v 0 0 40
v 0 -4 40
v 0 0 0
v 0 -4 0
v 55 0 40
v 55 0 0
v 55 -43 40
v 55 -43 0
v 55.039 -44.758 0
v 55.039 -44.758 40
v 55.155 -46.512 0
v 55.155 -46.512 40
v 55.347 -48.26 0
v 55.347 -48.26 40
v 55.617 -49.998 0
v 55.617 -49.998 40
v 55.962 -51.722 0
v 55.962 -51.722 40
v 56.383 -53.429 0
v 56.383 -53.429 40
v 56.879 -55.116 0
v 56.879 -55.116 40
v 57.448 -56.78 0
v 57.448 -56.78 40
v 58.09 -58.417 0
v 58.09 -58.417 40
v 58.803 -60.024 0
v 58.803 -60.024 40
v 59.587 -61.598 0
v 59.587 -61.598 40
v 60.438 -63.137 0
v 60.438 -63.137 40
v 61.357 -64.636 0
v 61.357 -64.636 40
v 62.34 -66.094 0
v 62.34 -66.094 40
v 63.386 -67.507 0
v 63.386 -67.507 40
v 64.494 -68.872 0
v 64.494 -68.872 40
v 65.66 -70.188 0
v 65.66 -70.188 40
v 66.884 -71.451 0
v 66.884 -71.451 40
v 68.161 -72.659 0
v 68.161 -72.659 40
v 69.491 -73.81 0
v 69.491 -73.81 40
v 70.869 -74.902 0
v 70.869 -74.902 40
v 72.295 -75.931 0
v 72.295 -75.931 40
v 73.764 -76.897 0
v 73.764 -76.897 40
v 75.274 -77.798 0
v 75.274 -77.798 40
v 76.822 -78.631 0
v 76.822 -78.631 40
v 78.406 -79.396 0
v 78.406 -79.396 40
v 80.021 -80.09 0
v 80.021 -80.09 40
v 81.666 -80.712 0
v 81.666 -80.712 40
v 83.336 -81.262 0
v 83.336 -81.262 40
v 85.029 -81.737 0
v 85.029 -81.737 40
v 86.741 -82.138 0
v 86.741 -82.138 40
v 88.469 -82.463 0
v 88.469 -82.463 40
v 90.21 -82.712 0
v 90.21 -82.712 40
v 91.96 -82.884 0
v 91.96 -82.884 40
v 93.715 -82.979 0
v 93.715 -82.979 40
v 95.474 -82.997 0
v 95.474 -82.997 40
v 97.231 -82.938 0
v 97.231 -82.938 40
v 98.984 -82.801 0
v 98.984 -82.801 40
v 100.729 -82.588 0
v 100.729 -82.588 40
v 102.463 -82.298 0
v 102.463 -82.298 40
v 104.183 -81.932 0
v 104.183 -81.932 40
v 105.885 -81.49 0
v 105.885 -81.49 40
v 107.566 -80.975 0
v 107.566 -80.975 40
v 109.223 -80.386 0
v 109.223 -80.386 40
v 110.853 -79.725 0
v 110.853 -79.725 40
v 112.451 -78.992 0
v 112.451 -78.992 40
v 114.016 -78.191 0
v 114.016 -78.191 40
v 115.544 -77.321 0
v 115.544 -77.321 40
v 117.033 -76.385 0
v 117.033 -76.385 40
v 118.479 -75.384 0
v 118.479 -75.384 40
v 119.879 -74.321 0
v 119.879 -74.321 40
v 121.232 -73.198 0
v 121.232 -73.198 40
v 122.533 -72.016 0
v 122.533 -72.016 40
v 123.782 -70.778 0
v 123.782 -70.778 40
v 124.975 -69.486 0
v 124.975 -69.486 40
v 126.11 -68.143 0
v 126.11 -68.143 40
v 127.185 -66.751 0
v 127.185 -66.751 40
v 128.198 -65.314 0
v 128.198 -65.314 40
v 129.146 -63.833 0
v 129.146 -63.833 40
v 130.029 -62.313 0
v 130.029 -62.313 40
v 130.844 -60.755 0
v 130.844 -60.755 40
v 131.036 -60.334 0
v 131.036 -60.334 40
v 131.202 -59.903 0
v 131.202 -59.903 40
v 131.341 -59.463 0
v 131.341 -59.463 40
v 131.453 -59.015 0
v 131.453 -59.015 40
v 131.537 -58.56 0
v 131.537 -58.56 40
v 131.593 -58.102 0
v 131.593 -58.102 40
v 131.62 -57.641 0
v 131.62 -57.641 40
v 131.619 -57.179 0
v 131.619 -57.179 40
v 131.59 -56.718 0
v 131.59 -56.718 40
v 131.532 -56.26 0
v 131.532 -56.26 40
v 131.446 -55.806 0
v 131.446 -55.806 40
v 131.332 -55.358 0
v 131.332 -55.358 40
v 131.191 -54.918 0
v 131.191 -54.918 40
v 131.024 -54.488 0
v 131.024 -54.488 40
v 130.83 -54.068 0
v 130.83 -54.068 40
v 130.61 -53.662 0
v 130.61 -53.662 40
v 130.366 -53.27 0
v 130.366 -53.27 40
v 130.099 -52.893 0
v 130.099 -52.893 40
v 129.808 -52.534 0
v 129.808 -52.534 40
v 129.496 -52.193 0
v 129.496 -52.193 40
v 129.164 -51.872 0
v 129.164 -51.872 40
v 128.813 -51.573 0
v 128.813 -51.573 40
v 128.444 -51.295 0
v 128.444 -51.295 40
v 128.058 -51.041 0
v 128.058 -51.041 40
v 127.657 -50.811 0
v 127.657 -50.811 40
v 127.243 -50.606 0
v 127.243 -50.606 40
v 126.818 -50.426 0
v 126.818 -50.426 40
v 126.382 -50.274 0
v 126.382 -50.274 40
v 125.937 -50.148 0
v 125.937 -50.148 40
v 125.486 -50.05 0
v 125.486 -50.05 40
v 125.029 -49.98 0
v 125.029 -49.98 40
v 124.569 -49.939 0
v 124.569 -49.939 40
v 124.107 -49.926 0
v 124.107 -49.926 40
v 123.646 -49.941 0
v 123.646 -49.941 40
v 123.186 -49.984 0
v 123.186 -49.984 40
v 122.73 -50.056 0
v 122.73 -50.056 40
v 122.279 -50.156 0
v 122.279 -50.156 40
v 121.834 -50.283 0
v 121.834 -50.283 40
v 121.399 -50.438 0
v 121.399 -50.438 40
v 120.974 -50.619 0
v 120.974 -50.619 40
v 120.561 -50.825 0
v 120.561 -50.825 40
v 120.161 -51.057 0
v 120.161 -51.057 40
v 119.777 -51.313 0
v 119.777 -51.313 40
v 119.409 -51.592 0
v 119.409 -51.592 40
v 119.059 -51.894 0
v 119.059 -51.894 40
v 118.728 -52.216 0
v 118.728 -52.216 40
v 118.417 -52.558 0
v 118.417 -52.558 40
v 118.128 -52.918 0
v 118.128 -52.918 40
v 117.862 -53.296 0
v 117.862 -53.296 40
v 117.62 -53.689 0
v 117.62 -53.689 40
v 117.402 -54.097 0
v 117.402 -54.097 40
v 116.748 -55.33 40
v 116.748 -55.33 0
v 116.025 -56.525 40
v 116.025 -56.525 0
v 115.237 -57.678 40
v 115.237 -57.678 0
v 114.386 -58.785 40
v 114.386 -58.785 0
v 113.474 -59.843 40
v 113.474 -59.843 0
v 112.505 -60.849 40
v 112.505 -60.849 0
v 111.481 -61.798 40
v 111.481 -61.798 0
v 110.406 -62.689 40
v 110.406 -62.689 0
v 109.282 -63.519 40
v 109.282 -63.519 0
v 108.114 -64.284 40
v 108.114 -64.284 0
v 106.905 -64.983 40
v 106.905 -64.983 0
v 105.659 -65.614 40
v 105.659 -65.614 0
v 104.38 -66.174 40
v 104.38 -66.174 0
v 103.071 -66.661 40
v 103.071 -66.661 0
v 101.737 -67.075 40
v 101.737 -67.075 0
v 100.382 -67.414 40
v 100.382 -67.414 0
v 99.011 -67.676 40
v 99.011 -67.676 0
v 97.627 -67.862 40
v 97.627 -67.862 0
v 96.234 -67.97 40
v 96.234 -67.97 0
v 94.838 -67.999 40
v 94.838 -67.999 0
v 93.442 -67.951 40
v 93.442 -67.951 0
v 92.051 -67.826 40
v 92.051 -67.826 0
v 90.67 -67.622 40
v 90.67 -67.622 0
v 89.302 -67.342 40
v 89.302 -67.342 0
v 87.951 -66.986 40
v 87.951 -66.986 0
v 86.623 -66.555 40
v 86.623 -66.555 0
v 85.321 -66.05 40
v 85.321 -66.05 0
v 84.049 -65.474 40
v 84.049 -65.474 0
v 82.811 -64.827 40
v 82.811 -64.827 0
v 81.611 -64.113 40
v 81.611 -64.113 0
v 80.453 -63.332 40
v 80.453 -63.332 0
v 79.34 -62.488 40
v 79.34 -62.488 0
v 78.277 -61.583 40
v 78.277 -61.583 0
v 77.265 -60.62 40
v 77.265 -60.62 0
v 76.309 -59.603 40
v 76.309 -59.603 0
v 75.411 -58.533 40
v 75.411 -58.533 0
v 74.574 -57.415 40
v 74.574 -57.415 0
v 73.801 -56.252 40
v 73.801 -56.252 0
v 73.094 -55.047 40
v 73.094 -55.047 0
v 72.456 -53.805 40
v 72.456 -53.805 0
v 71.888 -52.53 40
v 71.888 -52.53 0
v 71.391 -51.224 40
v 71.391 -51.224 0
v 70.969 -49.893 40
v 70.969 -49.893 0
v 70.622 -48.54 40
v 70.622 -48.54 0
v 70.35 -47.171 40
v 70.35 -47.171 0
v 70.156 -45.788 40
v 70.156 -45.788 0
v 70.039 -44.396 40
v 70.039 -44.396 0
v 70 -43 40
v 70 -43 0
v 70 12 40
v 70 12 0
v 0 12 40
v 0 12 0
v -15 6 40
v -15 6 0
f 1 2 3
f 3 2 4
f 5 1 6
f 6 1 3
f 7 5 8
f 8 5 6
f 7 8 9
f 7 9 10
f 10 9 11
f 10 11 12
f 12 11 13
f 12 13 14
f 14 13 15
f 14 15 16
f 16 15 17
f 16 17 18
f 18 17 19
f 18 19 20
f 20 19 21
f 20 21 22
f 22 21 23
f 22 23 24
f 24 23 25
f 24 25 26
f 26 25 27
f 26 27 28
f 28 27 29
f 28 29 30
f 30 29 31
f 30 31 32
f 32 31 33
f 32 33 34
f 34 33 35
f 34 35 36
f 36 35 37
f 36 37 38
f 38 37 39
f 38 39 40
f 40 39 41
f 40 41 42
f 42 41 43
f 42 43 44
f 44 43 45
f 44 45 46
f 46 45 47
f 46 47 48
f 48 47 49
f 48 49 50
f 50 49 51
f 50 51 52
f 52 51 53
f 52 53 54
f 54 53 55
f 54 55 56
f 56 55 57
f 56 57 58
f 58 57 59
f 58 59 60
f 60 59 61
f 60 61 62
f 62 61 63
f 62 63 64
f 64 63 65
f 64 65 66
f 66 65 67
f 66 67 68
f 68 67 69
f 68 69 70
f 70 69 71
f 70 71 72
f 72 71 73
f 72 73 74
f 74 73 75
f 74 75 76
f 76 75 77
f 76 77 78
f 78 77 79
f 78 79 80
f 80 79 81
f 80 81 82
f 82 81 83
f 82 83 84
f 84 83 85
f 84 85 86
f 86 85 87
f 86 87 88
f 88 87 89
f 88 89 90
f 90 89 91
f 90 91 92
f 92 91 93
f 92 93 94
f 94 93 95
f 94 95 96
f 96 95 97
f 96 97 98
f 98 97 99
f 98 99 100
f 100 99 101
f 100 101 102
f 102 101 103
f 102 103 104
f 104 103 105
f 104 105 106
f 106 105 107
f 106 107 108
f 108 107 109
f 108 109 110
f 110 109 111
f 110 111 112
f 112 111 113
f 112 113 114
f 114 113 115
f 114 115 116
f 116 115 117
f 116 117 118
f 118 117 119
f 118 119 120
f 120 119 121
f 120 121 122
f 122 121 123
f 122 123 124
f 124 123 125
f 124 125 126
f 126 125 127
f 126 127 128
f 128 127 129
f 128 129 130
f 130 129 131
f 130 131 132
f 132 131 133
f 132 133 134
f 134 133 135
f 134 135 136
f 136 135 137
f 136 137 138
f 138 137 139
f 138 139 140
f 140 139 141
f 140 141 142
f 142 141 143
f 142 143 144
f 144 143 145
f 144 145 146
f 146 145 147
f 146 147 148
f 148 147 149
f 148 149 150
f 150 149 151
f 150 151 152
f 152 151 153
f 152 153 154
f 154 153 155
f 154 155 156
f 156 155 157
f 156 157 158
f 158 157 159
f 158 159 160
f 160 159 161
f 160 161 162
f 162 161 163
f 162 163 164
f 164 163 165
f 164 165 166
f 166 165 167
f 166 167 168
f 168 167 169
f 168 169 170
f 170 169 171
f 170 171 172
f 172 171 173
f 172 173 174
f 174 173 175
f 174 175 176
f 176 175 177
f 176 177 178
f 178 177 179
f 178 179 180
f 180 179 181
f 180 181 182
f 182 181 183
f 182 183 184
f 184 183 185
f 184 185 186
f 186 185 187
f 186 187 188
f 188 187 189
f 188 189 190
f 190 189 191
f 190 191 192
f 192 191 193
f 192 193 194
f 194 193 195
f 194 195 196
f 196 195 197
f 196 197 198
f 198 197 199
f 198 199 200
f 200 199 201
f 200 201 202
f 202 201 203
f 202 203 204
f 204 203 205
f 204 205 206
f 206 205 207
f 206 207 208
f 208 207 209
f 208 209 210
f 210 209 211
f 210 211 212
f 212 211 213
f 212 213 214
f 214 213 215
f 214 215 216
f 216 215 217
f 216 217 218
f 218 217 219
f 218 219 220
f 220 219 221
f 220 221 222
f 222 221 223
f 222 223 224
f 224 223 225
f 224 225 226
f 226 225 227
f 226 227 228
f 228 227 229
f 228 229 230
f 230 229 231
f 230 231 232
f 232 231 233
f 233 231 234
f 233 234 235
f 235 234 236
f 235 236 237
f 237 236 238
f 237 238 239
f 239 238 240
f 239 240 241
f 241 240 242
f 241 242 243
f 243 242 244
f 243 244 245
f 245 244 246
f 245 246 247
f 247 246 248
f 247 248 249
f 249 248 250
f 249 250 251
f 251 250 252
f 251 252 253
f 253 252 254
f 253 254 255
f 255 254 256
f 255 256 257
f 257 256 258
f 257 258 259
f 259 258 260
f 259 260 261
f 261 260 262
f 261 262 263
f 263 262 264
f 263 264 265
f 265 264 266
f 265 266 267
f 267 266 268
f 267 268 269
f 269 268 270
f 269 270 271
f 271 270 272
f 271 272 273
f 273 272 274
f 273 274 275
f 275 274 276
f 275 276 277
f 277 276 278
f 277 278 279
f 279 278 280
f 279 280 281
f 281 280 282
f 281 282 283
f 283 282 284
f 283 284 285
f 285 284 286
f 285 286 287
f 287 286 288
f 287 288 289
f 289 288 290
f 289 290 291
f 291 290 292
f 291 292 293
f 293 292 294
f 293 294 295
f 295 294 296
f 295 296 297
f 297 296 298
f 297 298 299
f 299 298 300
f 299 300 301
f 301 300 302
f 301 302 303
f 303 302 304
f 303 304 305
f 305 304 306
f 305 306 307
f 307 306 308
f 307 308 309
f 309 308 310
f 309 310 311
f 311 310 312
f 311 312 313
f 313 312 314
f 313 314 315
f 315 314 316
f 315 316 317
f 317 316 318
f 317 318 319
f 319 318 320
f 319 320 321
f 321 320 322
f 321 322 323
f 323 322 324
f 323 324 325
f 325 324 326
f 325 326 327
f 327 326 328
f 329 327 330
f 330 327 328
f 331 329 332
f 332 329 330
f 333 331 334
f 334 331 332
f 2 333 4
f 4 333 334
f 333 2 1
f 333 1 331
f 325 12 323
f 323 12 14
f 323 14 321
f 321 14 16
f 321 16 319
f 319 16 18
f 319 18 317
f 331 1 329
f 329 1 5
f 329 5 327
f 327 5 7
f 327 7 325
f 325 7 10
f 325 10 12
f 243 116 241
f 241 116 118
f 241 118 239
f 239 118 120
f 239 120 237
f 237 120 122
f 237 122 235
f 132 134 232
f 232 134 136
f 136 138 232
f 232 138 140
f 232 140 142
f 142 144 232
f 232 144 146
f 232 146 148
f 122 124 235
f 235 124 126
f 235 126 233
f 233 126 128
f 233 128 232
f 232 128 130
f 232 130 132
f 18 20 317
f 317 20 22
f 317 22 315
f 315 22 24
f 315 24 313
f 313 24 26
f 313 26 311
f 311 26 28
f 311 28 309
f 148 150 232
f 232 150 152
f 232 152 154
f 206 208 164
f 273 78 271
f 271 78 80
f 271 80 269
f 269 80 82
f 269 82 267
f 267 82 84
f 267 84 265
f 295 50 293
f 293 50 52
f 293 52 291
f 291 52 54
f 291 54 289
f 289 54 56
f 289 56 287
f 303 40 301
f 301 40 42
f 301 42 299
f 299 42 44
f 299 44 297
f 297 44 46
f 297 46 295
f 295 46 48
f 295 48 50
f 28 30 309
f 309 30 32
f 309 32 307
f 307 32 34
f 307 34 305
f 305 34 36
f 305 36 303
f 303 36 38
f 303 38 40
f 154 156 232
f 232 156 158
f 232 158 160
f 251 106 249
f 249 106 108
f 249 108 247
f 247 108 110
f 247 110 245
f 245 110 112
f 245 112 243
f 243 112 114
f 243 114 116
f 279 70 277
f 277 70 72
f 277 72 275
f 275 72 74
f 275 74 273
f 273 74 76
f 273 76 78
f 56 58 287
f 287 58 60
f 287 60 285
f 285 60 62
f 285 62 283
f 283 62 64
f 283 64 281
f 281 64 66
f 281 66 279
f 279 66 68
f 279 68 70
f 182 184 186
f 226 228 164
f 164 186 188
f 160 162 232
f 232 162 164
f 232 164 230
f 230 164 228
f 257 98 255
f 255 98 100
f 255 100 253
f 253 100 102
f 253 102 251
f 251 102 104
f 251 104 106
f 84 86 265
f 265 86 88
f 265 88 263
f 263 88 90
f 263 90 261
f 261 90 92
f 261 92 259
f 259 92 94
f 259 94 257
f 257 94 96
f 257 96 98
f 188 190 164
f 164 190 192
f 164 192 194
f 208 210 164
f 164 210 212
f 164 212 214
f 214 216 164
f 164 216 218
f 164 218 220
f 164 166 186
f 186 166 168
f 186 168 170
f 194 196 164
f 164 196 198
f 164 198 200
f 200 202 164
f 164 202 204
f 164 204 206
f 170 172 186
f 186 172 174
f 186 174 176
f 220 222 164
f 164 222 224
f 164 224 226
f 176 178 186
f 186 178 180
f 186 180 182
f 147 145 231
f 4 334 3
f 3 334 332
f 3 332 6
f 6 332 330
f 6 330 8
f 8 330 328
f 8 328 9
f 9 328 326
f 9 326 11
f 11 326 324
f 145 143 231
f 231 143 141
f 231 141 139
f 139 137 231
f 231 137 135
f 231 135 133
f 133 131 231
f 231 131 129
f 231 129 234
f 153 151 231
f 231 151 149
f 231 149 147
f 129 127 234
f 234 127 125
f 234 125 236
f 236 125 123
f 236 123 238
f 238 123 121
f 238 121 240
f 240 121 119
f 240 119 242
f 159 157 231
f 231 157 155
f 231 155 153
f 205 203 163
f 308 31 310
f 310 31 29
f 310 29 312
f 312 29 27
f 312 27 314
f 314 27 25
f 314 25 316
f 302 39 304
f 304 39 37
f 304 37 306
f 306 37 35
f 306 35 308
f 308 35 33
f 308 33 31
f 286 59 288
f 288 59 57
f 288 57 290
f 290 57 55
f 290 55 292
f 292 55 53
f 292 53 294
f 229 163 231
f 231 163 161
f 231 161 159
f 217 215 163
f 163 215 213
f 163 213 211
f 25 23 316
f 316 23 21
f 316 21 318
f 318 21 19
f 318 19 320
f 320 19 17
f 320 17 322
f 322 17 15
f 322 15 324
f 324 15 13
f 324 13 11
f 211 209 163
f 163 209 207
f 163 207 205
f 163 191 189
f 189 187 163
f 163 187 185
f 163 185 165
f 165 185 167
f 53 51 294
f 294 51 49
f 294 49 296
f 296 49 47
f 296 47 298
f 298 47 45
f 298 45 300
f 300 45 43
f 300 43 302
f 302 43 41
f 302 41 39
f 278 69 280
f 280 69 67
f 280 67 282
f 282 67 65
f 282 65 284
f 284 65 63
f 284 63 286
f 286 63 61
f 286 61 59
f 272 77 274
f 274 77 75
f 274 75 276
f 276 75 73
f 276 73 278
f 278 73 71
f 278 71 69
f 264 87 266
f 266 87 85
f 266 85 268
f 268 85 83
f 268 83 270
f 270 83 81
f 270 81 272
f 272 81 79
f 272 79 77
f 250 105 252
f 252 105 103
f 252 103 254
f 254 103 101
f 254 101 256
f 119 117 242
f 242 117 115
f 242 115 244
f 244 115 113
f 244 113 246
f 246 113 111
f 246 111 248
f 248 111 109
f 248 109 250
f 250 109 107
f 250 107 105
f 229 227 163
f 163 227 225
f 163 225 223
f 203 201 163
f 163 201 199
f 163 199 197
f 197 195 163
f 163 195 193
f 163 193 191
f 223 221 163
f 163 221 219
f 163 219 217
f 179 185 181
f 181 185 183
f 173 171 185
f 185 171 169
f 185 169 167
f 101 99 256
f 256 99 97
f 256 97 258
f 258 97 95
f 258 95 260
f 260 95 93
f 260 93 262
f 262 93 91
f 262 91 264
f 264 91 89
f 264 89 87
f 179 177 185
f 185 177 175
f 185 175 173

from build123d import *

# Parameters (mm, degrees)
BOSS_EXTRUDE1_DEPTH = 40


with BuildPart() as part:
    # Sketch1 → Boss-Extrude1 (new body)
    with BuildSketch(Plane.XY):
        with BuildLine():
            Line((0, 0), (55, 0))
            Line((55, 0), (55, -43))
            ThreePointArc((55, -43), (85.882739779, -81.947086747), (130.843778303, -60.754536237))
            ThreePointArc((130.843778303, -60.754536237), (127.452045415, -50.70485226), (117.402361439, -54.096585148))
            ThreePointArc((117.402361439, -54.096585148), (89.301712362, -67.341929217), (70, -43))
            Line((70, -43), (70, 12))
            Line((70, 12), (0, 12))
            Line((0, 12), (-15, 6))
            Line((-15, 6), (0, -4))
            Line((0, -4), (0, 0))
        make_face()
    extrude(amount=BOSS_EXTRUDE1_DEPTH)


solid = part.part
